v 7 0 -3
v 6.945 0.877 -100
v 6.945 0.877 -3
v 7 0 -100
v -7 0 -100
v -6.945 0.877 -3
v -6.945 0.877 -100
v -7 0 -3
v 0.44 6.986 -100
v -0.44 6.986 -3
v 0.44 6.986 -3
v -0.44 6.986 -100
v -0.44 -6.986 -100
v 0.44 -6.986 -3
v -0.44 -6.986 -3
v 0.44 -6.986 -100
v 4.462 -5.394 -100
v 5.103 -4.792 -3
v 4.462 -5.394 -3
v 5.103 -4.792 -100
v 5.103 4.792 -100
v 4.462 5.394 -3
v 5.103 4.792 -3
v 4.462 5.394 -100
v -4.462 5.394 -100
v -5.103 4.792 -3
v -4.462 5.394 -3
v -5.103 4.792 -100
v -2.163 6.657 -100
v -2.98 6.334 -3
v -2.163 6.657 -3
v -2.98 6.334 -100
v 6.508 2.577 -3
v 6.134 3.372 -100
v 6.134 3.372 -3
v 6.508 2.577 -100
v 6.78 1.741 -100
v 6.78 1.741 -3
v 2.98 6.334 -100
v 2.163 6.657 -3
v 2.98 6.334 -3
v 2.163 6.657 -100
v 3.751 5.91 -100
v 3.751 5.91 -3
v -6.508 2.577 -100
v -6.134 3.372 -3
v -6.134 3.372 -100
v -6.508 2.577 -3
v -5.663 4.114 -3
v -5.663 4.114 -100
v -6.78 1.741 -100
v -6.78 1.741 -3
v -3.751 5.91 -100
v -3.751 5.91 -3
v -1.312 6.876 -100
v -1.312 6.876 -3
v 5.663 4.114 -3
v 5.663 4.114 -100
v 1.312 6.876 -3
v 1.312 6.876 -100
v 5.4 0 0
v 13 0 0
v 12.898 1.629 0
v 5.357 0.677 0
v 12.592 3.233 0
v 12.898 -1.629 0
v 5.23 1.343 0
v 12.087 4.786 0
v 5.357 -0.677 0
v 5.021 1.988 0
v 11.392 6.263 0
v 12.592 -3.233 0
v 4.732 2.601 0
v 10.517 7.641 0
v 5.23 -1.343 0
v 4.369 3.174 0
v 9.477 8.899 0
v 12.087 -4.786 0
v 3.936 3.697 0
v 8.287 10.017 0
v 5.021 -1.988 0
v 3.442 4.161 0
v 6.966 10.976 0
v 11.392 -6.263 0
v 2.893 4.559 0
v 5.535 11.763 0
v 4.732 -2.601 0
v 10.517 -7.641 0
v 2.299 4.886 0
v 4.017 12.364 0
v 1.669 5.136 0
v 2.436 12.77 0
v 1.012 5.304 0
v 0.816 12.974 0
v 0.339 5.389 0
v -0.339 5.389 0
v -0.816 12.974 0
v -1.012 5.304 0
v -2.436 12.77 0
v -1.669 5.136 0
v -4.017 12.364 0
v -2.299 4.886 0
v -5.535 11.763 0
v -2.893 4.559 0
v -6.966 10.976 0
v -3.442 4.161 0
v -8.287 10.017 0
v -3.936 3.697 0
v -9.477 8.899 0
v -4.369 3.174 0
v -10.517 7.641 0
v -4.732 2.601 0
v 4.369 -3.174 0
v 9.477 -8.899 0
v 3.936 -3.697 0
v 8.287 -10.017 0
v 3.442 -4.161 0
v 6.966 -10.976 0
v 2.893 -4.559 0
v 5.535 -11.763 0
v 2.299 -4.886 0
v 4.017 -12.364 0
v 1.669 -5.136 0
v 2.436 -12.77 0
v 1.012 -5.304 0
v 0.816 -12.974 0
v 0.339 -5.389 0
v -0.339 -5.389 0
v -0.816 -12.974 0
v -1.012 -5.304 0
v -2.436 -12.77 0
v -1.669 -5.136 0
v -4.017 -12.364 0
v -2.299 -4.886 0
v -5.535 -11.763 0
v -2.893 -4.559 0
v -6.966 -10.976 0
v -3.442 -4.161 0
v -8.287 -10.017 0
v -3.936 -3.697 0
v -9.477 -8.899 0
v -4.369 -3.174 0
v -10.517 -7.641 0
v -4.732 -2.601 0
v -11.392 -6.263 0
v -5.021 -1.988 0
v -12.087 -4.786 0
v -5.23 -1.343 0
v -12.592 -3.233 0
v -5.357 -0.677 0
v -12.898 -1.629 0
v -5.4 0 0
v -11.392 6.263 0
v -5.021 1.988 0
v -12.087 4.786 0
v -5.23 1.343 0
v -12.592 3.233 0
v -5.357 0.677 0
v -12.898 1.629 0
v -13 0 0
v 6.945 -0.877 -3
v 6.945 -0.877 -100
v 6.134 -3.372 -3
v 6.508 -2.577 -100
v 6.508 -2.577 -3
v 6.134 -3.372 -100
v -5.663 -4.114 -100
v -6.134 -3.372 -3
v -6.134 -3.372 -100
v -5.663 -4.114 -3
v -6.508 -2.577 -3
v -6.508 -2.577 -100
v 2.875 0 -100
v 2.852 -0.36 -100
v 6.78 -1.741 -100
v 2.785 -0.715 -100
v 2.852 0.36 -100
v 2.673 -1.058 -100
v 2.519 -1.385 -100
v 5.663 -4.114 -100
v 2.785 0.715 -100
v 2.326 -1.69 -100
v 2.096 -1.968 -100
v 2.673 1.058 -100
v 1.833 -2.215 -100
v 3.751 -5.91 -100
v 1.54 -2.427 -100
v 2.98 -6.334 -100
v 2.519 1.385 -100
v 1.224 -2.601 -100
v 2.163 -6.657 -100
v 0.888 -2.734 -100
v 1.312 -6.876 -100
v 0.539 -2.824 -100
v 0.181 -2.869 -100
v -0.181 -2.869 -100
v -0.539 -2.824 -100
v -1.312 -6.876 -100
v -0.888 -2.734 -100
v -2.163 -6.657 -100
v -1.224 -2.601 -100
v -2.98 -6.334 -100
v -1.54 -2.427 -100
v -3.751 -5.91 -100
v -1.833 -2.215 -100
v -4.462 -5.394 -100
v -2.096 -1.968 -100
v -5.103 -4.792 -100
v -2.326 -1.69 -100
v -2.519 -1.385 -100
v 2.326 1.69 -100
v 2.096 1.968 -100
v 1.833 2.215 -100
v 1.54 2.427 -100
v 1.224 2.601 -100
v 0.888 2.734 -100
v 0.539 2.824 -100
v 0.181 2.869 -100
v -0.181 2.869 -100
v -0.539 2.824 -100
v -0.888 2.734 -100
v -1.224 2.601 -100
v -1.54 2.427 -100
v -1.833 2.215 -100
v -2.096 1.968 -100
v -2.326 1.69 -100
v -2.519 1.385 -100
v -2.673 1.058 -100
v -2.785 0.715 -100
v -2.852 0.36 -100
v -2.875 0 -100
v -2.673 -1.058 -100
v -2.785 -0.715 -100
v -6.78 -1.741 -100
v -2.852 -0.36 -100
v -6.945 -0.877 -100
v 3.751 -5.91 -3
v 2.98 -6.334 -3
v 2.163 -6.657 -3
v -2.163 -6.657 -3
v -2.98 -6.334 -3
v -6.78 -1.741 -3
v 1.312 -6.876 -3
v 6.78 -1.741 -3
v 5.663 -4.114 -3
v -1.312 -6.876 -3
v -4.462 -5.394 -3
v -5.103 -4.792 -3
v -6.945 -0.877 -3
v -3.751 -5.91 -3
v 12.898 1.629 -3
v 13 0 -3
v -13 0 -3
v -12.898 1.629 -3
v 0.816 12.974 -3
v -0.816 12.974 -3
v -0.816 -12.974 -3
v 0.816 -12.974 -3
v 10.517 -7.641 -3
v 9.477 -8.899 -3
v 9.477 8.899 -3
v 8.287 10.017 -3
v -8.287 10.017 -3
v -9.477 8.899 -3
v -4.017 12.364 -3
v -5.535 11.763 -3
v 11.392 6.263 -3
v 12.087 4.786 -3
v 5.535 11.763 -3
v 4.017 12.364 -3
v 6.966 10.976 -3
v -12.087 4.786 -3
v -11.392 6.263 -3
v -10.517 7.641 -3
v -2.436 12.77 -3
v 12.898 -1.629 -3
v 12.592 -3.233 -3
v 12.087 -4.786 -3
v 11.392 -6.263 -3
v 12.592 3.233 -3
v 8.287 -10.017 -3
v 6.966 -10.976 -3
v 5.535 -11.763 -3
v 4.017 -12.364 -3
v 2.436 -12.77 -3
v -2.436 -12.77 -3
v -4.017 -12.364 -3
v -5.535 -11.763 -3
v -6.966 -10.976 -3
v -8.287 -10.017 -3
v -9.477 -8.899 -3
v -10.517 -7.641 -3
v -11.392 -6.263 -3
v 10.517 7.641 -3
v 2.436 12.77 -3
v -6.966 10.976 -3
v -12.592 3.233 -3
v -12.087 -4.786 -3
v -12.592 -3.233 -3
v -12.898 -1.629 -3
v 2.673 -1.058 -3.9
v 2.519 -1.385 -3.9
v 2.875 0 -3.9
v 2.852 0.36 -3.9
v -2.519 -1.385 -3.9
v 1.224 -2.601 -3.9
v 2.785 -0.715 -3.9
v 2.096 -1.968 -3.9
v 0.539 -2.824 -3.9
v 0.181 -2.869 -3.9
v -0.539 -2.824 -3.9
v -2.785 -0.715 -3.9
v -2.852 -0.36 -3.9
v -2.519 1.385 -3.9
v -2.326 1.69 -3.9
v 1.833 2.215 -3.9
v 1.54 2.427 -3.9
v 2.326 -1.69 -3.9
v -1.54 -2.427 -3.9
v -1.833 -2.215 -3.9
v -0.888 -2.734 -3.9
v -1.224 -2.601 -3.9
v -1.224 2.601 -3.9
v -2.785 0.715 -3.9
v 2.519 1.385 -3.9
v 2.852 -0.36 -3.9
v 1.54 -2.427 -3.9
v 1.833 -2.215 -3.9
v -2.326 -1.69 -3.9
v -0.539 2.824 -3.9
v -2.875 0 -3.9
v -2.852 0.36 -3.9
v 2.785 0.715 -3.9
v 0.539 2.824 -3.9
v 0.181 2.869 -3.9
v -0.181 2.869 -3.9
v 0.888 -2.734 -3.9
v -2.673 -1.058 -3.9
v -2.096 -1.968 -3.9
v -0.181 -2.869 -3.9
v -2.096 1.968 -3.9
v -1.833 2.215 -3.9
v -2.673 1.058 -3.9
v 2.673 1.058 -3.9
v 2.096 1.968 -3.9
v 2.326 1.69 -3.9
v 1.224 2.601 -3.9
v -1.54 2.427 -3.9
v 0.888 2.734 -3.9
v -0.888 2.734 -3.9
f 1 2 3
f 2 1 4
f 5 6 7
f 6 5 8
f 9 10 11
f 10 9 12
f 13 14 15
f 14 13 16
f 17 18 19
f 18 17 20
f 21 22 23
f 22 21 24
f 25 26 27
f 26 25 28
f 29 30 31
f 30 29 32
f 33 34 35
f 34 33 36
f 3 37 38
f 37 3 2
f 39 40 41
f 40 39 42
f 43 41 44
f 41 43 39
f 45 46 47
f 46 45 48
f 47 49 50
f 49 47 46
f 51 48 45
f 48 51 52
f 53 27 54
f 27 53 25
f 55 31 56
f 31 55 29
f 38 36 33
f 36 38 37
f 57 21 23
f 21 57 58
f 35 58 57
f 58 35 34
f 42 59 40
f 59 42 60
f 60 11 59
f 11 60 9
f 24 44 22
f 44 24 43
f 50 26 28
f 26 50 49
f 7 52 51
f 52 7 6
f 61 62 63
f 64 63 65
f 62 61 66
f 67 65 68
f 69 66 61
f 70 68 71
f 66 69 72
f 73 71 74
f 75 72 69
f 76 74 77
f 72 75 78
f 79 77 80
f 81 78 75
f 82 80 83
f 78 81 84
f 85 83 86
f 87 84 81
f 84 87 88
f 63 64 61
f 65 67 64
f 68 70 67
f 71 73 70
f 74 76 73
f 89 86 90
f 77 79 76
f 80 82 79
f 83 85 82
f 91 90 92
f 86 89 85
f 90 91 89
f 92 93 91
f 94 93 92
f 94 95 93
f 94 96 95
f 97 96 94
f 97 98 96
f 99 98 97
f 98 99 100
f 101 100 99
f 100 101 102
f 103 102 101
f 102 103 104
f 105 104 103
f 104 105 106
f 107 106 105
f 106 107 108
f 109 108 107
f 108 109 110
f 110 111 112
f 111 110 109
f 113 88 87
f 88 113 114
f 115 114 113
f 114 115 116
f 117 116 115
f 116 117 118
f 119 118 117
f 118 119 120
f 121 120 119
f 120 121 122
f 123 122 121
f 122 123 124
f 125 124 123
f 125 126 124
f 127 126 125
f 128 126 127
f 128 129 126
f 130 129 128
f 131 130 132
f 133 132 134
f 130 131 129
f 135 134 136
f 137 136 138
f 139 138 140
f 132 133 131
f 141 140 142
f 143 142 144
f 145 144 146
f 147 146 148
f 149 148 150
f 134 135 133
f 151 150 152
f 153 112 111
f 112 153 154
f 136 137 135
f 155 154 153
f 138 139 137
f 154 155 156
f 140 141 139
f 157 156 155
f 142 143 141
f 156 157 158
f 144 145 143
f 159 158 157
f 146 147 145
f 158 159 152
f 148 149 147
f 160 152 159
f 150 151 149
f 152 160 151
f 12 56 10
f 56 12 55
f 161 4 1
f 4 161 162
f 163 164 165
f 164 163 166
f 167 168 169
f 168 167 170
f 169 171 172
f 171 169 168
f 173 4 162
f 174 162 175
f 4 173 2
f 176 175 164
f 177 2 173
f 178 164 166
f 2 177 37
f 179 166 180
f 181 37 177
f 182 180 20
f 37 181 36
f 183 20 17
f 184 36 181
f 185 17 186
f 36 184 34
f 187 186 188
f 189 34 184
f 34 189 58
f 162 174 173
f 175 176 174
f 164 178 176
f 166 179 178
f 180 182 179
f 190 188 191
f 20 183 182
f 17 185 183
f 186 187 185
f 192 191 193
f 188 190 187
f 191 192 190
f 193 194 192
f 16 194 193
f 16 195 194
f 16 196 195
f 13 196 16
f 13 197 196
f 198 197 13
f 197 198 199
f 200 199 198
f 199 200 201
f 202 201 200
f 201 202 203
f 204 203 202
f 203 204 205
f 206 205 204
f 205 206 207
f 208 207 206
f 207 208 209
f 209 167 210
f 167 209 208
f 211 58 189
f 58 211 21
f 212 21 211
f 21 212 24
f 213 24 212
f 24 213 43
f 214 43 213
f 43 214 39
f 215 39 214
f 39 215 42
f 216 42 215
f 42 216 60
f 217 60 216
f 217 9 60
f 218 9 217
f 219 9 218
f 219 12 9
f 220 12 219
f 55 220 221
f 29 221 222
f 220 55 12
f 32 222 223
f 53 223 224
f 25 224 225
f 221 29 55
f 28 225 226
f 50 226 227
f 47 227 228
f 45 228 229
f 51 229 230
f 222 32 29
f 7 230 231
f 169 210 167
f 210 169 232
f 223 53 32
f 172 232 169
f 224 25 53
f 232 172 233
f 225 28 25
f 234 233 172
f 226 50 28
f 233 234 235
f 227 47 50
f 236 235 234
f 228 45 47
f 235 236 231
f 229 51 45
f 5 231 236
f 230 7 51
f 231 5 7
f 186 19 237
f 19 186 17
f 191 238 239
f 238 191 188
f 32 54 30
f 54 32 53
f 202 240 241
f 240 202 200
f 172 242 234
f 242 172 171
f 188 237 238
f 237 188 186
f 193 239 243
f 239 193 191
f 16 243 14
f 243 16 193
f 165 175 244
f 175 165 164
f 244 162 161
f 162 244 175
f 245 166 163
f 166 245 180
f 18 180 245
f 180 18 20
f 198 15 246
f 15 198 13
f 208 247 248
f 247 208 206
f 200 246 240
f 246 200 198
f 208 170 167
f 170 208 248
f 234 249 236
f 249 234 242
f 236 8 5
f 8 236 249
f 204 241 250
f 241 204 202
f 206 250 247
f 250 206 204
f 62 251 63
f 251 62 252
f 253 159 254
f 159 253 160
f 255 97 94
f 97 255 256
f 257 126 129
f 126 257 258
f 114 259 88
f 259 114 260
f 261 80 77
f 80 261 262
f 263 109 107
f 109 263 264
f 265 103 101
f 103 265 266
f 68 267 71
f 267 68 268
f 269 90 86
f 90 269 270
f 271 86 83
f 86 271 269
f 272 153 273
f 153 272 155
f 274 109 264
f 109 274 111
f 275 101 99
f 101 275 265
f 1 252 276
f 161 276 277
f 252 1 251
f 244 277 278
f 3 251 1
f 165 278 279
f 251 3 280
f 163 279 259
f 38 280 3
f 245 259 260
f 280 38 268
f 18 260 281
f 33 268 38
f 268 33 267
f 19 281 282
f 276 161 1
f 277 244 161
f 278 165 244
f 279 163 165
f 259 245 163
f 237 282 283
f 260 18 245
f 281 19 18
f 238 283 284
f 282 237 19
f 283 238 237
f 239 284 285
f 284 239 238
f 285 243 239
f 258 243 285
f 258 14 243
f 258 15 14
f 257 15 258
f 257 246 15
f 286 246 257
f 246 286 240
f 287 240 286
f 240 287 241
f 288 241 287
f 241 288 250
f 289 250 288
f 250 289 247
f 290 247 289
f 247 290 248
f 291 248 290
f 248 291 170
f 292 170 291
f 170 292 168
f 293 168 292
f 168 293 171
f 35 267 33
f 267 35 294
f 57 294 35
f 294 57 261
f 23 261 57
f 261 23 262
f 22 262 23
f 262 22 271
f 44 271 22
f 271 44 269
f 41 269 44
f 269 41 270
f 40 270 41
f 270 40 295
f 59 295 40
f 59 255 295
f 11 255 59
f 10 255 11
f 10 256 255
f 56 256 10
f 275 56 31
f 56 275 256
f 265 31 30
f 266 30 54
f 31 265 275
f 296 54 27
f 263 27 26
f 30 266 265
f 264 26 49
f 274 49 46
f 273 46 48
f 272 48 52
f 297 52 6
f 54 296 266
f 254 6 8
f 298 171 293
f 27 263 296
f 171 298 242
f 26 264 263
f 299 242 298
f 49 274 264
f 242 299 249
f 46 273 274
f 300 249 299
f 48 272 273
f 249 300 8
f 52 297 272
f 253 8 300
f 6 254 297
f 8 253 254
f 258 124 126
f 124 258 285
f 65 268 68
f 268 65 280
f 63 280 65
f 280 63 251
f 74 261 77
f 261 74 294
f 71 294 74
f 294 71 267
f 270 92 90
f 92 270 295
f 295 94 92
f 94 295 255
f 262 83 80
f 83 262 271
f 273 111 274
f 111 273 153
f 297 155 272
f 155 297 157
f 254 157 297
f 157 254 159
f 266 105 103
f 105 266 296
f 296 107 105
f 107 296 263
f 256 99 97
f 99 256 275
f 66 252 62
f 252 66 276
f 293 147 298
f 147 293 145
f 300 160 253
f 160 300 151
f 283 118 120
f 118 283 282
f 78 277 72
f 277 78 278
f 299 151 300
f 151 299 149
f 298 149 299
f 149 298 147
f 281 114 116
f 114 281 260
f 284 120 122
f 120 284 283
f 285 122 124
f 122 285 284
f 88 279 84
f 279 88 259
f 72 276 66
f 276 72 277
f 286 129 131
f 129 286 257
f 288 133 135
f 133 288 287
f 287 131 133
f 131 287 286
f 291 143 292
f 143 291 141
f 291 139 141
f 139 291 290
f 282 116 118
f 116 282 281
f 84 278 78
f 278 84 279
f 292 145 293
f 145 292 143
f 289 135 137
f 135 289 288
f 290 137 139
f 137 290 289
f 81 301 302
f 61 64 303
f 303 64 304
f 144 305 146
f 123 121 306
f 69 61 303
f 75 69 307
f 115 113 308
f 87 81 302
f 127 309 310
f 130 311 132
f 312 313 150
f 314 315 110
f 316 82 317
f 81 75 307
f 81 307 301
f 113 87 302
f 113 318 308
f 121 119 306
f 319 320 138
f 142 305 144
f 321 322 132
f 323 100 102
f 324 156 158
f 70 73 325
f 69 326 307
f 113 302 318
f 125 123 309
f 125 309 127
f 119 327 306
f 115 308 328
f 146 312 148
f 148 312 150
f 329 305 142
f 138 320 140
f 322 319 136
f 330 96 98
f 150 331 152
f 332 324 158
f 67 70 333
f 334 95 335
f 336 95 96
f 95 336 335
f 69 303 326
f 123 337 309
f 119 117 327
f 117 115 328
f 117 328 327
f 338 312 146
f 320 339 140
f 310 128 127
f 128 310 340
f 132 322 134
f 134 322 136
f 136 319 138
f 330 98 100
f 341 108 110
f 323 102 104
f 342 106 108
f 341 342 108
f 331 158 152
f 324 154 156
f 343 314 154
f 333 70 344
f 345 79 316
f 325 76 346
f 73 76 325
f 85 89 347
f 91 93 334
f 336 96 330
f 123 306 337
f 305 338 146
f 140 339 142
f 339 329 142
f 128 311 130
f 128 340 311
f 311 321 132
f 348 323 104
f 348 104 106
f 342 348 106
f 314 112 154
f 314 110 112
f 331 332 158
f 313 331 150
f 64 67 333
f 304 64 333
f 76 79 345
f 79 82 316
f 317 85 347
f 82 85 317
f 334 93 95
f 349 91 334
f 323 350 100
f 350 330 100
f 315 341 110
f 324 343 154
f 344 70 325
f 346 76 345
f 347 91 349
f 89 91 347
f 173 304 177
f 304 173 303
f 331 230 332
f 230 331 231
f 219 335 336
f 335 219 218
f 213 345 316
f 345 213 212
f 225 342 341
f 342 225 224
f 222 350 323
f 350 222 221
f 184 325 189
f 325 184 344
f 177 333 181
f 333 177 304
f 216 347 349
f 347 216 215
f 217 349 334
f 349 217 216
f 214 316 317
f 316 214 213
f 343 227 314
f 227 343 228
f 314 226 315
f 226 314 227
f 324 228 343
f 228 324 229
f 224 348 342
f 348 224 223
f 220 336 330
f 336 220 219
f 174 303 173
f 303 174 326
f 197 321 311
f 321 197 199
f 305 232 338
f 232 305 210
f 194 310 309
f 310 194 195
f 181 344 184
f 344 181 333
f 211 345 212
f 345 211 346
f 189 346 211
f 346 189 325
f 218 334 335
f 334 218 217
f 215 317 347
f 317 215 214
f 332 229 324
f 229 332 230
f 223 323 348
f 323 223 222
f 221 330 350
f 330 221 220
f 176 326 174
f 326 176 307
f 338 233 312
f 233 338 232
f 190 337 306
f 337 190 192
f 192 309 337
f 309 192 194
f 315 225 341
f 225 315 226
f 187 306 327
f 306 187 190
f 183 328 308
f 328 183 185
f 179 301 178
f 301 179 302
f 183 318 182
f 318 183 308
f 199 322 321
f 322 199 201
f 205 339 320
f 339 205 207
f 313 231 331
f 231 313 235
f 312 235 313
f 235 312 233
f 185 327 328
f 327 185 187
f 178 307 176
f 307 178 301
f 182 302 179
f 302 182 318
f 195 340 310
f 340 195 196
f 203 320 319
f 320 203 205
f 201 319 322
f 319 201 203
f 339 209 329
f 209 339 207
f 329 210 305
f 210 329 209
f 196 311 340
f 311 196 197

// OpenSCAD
$fn = 50;


difference() {
	union() {
		translate(v = [0, 0, -100.0000000000]) {
			cylinder(h = 100, r = 7.0000000000);
		}
		translate(v = [0, 0, -3.0000000000]) {
			cylinder(h = 3, r = 13.0000000000);
		}
	}
	union() {
		translate(v = [0, 0, 0]) {
			rotate(a = [0, 0, 0]) {
				difference() {
					union() {
						#translate(v = [0, 0, -100.0000000000]) {
							cylinder(h = 100, r = 2.6000000000);
						}
						#translate(v = [0, 0, -3.9000000000]) {
							cylinder(h = 3.9000000000, r = 7.0000000000, r1 = 2.8750000000, r2 = 5.4000000000);
						}
						#translate(v = [0, 0, -100.0000000000]) {
							cylinder(h = 100, r = 2.8750000000);
						}
						#translate(v = [0, 0, -100.0000000000]) {
							cylinder(h = 100, r = 2.6000000000);
						}
					}
					union();
				}
			}
		}
	}
}
